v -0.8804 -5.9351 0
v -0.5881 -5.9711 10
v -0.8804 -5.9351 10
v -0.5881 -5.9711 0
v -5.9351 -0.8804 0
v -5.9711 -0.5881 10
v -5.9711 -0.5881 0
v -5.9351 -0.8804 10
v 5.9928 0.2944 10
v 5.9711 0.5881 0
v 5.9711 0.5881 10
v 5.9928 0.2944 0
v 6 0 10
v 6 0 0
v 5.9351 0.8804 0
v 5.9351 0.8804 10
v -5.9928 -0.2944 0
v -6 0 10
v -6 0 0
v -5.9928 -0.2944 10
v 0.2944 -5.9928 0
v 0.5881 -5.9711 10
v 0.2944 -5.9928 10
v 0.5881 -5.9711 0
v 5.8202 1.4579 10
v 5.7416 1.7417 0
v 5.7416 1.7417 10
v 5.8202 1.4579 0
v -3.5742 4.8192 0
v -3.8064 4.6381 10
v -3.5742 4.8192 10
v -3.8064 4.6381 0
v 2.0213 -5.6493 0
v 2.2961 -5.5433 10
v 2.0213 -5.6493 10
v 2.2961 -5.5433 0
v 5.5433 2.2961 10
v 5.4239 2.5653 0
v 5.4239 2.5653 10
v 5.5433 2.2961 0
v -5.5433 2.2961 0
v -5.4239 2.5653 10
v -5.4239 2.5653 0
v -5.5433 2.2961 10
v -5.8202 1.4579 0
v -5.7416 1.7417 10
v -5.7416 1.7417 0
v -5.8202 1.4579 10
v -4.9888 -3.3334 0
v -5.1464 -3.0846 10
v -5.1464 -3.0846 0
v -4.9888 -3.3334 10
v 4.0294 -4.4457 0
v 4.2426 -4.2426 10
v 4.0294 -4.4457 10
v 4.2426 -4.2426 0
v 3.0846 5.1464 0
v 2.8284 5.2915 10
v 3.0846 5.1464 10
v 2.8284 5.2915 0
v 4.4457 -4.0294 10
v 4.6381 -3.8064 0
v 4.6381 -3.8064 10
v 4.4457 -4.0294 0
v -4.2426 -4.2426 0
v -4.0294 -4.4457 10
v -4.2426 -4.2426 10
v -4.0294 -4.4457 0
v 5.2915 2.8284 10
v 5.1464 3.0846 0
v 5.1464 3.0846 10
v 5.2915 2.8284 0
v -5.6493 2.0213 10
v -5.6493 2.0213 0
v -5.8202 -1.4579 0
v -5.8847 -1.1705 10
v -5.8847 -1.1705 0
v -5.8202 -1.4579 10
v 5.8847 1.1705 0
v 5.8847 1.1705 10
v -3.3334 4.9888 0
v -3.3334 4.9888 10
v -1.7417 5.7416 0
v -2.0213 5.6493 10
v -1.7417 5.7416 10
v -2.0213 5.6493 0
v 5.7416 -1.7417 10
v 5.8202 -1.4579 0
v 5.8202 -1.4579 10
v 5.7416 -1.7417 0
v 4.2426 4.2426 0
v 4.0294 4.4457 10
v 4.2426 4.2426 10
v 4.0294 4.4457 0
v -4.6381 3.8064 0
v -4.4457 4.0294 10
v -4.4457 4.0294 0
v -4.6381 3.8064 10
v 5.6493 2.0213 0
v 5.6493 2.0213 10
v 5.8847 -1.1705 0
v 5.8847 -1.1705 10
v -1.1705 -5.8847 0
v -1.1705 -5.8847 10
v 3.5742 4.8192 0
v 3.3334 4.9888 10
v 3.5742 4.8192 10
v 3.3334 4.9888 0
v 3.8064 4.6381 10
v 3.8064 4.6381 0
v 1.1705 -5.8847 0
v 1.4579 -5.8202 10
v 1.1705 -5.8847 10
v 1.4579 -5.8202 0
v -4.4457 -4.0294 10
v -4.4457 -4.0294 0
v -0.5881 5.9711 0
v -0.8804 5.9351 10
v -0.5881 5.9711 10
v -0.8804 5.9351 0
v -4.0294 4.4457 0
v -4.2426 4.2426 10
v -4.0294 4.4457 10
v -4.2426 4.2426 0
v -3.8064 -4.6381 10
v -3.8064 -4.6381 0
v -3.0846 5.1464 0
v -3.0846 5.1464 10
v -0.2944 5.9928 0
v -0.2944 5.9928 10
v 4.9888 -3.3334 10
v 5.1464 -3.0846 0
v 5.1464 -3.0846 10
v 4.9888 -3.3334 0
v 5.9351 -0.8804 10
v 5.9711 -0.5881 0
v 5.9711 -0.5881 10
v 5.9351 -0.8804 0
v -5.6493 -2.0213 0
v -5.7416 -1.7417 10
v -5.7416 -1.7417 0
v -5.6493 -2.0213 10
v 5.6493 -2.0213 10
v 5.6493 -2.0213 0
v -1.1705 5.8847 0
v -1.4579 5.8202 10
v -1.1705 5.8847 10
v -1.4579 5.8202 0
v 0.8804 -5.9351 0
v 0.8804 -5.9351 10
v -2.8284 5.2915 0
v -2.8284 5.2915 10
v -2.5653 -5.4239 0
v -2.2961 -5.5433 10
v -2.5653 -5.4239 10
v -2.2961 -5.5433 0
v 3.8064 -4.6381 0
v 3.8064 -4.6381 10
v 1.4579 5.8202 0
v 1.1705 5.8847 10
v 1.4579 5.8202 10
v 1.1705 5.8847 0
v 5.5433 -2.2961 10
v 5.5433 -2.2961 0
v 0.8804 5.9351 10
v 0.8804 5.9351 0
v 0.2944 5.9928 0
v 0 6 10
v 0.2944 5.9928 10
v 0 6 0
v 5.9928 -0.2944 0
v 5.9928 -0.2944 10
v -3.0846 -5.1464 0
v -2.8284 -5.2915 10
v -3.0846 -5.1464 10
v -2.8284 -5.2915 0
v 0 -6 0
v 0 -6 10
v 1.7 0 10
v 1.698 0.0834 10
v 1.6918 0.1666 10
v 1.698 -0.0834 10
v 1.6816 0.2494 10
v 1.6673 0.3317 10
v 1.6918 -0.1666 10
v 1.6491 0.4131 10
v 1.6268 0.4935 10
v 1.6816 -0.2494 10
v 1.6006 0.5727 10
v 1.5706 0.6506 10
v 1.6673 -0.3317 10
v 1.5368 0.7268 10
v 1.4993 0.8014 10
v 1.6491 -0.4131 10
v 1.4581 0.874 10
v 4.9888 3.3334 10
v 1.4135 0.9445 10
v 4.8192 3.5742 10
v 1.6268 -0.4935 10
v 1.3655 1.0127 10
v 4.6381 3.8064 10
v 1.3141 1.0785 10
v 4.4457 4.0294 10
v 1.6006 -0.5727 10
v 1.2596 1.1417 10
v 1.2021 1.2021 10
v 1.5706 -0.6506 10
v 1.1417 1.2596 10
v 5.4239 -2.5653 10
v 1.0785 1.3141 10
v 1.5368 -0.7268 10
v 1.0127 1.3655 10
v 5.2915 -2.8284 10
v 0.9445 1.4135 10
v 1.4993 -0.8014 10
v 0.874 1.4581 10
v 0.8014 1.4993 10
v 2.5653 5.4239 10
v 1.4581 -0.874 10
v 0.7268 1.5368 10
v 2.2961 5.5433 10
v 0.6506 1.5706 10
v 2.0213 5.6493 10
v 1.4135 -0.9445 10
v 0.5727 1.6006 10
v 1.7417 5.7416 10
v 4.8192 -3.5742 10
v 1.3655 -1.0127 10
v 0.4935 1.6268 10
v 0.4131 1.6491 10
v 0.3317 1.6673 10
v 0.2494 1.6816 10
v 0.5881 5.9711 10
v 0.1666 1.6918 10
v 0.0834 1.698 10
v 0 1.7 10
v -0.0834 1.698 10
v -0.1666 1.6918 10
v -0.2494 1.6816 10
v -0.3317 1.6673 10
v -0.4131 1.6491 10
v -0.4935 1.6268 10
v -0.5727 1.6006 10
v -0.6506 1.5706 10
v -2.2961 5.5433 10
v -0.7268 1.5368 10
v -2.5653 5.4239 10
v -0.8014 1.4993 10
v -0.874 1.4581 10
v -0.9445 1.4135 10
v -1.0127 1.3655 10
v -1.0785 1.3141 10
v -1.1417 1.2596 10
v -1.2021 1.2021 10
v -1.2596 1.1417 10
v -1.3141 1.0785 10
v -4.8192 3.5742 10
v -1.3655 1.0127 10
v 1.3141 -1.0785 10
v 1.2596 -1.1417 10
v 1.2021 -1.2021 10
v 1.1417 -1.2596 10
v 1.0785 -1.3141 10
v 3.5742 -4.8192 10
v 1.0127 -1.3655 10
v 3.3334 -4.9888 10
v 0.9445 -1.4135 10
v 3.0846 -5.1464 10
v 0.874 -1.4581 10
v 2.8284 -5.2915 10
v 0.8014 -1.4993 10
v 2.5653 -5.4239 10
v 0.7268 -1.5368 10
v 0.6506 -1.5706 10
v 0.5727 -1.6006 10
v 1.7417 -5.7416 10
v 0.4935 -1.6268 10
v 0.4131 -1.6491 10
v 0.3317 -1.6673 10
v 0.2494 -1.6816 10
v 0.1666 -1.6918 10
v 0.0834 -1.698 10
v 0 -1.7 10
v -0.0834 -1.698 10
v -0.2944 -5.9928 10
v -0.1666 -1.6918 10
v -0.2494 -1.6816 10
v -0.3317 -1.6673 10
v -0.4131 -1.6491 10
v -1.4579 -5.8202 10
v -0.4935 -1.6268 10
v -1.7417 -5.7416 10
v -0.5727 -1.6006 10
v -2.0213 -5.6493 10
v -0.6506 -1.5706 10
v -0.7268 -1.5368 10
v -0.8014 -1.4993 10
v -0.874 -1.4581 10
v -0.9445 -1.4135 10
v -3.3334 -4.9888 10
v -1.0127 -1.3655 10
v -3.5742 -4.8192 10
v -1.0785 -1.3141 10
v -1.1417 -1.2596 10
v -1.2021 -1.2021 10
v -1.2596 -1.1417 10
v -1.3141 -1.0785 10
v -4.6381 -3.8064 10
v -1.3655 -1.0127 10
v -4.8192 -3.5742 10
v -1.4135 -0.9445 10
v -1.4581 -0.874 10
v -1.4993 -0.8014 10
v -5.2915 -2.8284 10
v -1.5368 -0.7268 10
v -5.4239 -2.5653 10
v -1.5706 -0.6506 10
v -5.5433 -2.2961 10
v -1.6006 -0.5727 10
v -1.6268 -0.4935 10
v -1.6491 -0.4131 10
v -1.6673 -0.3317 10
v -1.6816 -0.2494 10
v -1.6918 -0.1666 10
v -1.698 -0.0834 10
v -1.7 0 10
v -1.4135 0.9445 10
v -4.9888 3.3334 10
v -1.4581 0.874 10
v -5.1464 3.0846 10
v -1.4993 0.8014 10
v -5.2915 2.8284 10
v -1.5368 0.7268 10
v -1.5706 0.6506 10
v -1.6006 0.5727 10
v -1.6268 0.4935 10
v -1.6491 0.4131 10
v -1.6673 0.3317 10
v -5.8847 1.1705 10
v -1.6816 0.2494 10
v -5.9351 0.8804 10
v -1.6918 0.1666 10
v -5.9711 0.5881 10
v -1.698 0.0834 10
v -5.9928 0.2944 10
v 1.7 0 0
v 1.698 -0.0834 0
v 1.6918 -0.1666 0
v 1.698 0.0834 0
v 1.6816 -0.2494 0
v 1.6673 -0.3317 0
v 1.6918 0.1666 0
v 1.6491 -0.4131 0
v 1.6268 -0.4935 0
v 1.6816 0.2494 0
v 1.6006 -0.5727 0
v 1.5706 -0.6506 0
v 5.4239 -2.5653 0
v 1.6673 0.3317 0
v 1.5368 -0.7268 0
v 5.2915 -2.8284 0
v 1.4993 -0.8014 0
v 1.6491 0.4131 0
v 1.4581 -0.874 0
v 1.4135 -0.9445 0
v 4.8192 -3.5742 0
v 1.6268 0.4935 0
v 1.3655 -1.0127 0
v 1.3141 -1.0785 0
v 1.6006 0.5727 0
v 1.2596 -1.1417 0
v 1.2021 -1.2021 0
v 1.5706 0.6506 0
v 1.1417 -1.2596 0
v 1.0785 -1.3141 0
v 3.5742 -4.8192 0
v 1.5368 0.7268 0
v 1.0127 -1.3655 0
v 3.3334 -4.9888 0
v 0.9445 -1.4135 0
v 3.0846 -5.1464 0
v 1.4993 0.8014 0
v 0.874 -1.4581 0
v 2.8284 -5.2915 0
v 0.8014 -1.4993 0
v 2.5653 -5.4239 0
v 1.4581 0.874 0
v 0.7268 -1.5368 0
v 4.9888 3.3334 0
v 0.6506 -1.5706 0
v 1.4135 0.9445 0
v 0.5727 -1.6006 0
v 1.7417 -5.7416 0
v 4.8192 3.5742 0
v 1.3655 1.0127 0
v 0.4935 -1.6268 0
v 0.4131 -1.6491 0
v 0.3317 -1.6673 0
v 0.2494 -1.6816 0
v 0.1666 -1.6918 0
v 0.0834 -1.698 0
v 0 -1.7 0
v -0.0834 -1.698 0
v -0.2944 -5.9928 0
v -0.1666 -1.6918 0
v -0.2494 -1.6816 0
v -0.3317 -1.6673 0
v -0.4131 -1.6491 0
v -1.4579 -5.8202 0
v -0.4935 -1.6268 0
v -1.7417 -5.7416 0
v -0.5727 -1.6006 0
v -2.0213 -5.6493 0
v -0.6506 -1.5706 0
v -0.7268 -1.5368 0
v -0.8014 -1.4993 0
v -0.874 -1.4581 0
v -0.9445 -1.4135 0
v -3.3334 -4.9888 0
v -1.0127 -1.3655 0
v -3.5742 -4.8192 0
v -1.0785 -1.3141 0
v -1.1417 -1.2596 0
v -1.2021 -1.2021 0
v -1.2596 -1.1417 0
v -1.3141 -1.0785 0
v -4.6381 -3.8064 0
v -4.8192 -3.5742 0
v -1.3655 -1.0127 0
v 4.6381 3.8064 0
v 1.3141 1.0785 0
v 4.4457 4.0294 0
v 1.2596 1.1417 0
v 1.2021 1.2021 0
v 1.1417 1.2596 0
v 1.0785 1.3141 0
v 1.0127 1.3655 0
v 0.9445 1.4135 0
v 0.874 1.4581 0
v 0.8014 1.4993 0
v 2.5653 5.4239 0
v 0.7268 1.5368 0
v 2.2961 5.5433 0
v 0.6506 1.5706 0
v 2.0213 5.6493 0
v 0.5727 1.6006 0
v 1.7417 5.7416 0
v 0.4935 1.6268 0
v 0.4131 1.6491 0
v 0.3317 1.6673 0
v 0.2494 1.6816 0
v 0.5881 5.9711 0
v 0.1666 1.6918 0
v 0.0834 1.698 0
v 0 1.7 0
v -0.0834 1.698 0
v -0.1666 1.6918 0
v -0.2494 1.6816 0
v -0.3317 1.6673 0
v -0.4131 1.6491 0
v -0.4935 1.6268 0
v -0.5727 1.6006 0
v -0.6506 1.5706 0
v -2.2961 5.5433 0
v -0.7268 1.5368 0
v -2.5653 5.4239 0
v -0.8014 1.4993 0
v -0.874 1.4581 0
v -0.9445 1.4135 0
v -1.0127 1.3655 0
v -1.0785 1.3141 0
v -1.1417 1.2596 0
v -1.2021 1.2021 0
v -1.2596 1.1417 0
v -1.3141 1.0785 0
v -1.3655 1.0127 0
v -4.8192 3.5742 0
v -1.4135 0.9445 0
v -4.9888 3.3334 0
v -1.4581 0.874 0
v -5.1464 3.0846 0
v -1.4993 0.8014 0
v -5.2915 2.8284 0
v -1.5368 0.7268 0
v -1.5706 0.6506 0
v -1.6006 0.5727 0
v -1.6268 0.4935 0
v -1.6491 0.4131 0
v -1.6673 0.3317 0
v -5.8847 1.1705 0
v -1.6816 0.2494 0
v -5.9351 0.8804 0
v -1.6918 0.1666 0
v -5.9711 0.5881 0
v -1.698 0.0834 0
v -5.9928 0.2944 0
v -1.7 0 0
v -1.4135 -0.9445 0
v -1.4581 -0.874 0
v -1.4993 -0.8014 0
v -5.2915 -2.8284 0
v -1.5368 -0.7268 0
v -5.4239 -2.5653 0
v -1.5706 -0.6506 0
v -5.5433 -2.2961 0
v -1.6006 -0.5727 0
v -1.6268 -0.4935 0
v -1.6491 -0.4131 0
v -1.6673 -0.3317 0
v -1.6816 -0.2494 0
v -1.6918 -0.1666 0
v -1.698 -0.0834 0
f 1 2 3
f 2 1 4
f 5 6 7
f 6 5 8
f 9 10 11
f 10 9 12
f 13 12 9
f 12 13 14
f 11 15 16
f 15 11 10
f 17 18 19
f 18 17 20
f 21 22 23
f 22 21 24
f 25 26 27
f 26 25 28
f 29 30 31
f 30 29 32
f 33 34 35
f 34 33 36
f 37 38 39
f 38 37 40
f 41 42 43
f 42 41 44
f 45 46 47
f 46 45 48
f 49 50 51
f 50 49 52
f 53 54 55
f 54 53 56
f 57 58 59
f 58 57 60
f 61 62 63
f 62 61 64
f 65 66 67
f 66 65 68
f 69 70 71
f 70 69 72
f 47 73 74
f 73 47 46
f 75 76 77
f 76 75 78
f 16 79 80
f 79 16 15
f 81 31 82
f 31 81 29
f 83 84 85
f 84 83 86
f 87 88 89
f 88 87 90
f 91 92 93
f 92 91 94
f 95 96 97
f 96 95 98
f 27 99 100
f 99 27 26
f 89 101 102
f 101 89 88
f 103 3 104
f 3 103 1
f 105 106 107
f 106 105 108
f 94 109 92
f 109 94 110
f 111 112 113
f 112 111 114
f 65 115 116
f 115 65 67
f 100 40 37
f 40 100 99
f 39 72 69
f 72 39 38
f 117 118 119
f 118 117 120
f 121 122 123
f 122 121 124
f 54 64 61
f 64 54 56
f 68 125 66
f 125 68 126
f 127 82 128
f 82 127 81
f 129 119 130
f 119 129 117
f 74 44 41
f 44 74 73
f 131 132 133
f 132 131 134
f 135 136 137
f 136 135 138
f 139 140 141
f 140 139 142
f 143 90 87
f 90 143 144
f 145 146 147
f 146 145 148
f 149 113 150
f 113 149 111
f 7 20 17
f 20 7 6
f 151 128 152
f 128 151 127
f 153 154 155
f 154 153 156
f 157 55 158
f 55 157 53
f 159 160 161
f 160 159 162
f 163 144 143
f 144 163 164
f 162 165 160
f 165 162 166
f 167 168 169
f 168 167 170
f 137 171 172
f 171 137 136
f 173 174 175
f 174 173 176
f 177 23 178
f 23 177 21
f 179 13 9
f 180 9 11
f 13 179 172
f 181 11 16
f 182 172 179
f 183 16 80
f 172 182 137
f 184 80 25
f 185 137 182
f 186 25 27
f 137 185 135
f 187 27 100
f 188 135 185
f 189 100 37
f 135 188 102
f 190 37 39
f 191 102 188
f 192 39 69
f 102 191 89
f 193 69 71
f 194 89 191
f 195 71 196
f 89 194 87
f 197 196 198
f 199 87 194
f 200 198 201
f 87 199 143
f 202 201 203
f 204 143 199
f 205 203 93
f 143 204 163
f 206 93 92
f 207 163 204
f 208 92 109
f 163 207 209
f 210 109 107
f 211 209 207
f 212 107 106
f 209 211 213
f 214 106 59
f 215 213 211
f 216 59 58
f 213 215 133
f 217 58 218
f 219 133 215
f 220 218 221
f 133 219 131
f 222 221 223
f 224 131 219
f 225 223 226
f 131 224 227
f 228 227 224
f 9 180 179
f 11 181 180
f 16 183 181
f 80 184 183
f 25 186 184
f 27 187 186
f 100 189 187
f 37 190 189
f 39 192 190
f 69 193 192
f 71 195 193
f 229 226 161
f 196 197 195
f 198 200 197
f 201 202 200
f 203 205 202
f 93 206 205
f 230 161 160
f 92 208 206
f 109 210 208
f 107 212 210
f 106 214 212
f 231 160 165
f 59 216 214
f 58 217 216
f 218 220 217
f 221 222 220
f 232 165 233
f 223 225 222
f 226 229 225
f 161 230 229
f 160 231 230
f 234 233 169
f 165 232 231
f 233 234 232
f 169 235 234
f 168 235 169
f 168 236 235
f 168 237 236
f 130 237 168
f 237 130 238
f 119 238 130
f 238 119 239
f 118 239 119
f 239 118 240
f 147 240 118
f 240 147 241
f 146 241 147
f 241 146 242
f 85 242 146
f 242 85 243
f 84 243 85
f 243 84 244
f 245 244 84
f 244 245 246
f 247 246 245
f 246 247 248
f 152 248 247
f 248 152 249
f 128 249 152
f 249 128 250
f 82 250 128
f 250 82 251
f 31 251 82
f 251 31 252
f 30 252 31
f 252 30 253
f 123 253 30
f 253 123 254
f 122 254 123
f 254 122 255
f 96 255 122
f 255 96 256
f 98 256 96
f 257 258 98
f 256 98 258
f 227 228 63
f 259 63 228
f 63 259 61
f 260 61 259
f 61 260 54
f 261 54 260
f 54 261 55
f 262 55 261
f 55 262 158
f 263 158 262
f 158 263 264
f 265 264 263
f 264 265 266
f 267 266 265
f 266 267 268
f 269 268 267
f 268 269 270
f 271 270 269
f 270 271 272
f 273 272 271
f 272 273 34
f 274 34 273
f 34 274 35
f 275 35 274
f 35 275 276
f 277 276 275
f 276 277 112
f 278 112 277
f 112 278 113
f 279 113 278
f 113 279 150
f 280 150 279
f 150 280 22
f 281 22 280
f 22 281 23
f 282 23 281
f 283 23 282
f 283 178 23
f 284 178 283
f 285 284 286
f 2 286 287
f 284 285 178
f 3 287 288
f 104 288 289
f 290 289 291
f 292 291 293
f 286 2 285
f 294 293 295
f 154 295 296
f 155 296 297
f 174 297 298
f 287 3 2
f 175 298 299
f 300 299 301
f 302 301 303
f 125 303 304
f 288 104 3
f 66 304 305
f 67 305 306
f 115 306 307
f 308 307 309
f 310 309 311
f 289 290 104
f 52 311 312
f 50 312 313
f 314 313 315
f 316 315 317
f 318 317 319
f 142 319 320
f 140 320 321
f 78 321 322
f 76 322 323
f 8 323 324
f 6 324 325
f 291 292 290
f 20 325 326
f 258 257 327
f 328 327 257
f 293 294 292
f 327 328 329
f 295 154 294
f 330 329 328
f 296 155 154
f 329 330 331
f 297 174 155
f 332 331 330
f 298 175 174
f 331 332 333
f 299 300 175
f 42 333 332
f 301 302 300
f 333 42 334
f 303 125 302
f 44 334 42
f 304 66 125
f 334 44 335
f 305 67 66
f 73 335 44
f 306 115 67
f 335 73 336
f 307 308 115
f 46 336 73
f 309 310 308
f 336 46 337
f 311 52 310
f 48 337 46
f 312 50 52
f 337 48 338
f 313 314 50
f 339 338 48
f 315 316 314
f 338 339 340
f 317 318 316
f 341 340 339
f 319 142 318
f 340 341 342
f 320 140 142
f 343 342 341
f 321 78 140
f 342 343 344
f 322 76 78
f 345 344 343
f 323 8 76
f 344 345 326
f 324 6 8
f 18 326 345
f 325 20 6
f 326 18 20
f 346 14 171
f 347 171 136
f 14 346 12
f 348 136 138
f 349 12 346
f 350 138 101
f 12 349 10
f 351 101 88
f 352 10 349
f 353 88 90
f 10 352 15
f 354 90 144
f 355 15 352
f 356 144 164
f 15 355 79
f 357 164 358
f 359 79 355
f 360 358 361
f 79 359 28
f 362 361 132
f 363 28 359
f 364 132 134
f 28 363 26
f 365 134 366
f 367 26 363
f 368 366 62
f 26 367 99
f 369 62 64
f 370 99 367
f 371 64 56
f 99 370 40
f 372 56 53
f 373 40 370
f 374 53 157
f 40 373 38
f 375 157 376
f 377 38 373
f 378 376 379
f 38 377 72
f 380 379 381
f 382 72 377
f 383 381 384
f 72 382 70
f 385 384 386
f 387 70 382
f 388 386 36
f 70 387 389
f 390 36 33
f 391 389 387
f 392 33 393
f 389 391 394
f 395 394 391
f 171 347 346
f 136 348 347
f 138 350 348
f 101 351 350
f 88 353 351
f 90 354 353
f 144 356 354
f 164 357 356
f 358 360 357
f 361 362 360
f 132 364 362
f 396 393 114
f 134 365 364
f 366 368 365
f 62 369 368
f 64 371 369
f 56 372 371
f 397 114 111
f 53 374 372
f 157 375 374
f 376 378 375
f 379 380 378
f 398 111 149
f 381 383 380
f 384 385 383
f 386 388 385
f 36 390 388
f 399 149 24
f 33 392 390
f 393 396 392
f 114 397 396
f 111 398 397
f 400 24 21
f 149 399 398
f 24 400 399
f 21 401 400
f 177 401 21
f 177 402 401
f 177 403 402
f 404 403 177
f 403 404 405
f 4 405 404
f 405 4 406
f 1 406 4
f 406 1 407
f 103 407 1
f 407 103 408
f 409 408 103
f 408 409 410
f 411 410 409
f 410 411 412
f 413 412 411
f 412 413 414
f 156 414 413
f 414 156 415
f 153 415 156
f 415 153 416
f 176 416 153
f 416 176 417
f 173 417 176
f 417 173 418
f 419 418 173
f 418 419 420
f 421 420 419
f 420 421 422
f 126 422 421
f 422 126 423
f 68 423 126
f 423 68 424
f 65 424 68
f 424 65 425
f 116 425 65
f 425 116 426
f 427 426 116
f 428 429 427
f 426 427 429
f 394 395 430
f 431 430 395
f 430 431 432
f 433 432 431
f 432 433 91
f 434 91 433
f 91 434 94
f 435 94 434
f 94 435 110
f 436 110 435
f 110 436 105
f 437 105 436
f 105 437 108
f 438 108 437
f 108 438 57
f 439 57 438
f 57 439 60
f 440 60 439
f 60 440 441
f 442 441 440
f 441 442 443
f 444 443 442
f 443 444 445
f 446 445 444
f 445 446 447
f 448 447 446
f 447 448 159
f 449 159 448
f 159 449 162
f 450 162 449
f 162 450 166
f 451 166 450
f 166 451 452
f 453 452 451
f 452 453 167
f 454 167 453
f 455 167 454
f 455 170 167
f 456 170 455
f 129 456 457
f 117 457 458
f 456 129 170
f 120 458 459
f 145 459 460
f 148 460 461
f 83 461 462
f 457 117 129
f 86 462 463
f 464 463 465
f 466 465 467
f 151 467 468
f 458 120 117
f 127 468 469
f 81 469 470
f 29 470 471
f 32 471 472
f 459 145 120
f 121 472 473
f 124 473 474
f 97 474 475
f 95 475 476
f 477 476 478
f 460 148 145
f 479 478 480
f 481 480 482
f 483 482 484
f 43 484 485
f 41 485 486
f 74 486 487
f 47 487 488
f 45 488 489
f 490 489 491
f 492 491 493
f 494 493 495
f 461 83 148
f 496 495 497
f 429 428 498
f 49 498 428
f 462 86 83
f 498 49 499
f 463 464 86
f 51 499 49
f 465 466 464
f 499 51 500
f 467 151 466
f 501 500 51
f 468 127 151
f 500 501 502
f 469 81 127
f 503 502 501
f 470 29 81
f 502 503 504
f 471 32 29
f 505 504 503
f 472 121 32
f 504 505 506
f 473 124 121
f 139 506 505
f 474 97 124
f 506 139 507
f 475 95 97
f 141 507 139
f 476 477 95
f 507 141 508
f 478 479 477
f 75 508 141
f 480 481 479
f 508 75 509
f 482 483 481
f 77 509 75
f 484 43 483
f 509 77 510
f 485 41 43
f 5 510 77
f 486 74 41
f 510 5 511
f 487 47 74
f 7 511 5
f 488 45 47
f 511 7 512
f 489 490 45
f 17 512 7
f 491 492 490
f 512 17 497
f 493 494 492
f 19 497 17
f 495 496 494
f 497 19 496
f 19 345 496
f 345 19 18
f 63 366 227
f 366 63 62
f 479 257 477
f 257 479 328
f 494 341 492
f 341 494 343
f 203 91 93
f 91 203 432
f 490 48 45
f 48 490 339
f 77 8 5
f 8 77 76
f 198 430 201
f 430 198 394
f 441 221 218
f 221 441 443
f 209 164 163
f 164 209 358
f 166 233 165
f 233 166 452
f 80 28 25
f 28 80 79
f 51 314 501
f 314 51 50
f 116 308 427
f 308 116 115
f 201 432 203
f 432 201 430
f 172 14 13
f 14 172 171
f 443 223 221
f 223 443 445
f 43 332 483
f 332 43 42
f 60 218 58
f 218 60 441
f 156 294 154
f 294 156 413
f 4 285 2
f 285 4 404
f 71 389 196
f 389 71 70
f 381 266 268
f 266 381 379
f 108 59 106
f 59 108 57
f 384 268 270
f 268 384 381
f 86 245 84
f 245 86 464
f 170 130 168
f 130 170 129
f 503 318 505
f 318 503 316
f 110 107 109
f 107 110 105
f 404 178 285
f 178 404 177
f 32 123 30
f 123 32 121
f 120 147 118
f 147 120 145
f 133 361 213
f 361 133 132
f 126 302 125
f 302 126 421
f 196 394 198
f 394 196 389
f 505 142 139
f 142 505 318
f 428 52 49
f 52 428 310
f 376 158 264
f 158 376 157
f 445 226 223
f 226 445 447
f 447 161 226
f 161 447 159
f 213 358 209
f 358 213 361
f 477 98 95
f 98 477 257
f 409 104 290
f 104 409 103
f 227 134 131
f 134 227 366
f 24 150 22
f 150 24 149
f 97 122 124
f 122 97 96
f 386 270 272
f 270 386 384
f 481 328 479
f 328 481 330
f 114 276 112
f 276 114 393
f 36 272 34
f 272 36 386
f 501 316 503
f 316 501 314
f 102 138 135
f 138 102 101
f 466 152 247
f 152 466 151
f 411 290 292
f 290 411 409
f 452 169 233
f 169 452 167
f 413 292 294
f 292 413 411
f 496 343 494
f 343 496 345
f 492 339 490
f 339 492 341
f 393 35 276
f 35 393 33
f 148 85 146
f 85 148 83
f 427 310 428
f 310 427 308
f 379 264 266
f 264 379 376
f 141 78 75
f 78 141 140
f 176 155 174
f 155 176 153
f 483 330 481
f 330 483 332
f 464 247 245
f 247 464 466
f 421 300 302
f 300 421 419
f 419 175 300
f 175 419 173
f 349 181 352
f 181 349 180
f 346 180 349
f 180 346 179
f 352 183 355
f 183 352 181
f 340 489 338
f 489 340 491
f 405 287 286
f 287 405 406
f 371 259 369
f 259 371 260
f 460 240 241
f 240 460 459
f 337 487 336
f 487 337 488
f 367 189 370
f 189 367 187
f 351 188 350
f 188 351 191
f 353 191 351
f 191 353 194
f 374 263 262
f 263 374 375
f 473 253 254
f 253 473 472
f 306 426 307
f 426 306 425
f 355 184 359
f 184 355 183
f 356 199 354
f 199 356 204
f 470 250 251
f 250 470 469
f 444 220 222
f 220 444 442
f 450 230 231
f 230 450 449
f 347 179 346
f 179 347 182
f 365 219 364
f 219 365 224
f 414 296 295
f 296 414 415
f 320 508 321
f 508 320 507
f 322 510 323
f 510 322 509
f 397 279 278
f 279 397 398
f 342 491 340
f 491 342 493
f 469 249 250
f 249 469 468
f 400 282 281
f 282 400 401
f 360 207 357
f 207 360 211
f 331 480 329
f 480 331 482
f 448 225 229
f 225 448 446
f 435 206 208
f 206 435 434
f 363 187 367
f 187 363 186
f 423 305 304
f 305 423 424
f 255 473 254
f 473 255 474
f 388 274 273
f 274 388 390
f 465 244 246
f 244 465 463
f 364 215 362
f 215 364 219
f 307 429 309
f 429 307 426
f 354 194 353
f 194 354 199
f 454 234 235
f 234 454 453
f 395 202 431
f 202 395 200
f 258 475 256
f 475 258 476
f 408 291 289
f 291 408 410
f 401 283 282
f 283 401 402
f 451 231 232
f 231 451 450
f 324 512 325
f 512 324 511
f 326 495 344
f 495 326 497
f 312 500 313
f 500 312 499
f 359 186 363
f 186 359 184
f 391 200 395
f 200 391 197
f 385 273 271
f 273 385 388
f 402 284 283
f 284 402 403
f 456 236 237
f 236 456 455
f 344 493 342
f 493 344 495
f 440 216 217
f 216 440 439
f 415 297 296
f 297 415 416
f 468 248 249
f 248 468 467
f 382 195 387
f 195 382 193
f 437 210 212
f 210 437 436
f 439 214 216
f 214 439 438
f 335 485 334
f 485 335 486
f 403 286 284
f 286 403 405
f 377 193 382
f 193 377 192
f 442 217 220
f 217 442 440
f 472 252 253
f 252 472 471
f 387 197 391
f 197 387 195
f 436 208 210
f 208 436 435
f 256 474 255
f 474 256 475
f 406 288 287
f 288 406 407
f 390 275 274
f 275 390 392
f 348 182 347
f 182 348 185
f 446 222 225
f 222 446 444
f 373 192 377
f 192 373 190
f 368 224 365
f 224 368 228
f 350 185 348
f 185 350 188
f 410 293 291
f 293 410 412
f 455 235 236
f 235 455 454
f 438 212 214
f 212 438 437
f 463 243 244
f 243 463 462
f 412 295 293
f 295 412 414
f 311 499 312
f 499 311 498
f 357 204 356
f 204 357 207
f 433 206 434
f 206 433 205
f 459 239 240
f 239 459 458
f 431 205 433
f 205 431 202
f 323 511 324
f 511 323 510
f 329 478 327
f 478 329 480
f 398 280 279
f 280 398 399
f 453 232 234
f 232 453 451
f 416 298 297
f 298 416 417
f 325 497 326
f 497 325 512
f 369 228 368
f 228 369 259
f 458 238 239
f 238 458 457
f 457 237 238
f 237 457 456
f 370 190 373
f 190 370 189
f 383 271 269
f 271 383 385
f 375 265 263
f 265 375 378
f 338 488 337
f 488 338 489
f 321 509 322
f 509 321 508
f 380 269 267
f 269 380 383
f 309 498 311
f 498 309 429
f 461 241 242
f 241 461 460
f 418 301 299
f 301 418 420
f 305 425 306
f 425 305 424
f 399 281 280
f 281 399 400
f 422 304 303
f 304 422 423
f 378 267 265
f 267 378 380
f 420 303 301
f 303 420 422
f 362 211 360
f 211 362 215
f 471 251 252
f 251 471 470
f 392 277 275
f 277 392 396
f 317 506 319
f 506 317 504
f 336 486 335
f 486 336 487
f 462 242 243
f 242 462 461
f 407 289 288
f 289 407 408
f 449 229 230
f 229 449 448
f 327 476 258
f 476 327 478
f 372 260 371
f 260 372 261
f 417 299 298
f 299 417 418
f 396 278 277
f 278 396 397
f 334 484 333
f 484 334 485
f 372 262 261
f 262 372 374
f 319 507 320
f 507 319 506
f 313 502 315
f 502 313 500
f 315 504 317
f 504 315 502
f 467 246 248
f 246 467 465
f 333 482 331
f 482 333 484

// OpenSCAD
//###############################################################################
//# Generic Spacer                                                              #
//###############################################################################
//#    Copyright 2025 Dirk Heisswolf                                            #
//#    This file is part of the Spacer project.                                 #
//#                                                                             #
//#    This project is free software: you can redistribute it and/or modify     #
//#    it under the terms of the GNU General Public License as published by     #
//#    the Free Software Foundation, either version 3 of the License, or        #
//#    (at your option) any later version.                                      #
//#                                                                             #
//#    This project is distributed in the hope that it will be useful,          #
//#    but WITHOUT ANY WARRANTY; without even the implied warranty of           #
//#    MERCHANTABILITY or FITNESS FOR A PARTICULAR PURPOSE.  See the            #
//#    GNU General Public License for more details.                             #
//#                                                                             #
//#    You should have received a copy of the GNU General Public License        #
//#    along with this project.  If not, see <http://www.gnu.org/licenses/>.    #
//#                                                                             #
//#    This project makes use of the NopSCADlib library                         #
//#    (see https://github.com/nophead/NopSCADlib).                             #
//#                                                                             #
//###############################################################################
//# Description:                                                                #
//#   Gerneric spacer to ce scaled by the slicer software.                      #
//#                                                                             #
//###############################################################################
//# Version History:                                                            #
//#   January 28, 2025                                                          #
//#      - Initial release                                                      #
//#                                                                             #
//###############################################################################

innerD =   3.4; //inner diameter
outerD =  12;   //outer diameter
H      =  10;   //height
$fn    = 128;

module spacer(innerD=innerD, outerD=outerD, H=H) {
    difference() {
        translate([0,0,0])  cylinder(d=outerD, h=H);
        translate([0,0,-1]) cylinder(d=innerD, h=H+2);
    }
}
spacer();
